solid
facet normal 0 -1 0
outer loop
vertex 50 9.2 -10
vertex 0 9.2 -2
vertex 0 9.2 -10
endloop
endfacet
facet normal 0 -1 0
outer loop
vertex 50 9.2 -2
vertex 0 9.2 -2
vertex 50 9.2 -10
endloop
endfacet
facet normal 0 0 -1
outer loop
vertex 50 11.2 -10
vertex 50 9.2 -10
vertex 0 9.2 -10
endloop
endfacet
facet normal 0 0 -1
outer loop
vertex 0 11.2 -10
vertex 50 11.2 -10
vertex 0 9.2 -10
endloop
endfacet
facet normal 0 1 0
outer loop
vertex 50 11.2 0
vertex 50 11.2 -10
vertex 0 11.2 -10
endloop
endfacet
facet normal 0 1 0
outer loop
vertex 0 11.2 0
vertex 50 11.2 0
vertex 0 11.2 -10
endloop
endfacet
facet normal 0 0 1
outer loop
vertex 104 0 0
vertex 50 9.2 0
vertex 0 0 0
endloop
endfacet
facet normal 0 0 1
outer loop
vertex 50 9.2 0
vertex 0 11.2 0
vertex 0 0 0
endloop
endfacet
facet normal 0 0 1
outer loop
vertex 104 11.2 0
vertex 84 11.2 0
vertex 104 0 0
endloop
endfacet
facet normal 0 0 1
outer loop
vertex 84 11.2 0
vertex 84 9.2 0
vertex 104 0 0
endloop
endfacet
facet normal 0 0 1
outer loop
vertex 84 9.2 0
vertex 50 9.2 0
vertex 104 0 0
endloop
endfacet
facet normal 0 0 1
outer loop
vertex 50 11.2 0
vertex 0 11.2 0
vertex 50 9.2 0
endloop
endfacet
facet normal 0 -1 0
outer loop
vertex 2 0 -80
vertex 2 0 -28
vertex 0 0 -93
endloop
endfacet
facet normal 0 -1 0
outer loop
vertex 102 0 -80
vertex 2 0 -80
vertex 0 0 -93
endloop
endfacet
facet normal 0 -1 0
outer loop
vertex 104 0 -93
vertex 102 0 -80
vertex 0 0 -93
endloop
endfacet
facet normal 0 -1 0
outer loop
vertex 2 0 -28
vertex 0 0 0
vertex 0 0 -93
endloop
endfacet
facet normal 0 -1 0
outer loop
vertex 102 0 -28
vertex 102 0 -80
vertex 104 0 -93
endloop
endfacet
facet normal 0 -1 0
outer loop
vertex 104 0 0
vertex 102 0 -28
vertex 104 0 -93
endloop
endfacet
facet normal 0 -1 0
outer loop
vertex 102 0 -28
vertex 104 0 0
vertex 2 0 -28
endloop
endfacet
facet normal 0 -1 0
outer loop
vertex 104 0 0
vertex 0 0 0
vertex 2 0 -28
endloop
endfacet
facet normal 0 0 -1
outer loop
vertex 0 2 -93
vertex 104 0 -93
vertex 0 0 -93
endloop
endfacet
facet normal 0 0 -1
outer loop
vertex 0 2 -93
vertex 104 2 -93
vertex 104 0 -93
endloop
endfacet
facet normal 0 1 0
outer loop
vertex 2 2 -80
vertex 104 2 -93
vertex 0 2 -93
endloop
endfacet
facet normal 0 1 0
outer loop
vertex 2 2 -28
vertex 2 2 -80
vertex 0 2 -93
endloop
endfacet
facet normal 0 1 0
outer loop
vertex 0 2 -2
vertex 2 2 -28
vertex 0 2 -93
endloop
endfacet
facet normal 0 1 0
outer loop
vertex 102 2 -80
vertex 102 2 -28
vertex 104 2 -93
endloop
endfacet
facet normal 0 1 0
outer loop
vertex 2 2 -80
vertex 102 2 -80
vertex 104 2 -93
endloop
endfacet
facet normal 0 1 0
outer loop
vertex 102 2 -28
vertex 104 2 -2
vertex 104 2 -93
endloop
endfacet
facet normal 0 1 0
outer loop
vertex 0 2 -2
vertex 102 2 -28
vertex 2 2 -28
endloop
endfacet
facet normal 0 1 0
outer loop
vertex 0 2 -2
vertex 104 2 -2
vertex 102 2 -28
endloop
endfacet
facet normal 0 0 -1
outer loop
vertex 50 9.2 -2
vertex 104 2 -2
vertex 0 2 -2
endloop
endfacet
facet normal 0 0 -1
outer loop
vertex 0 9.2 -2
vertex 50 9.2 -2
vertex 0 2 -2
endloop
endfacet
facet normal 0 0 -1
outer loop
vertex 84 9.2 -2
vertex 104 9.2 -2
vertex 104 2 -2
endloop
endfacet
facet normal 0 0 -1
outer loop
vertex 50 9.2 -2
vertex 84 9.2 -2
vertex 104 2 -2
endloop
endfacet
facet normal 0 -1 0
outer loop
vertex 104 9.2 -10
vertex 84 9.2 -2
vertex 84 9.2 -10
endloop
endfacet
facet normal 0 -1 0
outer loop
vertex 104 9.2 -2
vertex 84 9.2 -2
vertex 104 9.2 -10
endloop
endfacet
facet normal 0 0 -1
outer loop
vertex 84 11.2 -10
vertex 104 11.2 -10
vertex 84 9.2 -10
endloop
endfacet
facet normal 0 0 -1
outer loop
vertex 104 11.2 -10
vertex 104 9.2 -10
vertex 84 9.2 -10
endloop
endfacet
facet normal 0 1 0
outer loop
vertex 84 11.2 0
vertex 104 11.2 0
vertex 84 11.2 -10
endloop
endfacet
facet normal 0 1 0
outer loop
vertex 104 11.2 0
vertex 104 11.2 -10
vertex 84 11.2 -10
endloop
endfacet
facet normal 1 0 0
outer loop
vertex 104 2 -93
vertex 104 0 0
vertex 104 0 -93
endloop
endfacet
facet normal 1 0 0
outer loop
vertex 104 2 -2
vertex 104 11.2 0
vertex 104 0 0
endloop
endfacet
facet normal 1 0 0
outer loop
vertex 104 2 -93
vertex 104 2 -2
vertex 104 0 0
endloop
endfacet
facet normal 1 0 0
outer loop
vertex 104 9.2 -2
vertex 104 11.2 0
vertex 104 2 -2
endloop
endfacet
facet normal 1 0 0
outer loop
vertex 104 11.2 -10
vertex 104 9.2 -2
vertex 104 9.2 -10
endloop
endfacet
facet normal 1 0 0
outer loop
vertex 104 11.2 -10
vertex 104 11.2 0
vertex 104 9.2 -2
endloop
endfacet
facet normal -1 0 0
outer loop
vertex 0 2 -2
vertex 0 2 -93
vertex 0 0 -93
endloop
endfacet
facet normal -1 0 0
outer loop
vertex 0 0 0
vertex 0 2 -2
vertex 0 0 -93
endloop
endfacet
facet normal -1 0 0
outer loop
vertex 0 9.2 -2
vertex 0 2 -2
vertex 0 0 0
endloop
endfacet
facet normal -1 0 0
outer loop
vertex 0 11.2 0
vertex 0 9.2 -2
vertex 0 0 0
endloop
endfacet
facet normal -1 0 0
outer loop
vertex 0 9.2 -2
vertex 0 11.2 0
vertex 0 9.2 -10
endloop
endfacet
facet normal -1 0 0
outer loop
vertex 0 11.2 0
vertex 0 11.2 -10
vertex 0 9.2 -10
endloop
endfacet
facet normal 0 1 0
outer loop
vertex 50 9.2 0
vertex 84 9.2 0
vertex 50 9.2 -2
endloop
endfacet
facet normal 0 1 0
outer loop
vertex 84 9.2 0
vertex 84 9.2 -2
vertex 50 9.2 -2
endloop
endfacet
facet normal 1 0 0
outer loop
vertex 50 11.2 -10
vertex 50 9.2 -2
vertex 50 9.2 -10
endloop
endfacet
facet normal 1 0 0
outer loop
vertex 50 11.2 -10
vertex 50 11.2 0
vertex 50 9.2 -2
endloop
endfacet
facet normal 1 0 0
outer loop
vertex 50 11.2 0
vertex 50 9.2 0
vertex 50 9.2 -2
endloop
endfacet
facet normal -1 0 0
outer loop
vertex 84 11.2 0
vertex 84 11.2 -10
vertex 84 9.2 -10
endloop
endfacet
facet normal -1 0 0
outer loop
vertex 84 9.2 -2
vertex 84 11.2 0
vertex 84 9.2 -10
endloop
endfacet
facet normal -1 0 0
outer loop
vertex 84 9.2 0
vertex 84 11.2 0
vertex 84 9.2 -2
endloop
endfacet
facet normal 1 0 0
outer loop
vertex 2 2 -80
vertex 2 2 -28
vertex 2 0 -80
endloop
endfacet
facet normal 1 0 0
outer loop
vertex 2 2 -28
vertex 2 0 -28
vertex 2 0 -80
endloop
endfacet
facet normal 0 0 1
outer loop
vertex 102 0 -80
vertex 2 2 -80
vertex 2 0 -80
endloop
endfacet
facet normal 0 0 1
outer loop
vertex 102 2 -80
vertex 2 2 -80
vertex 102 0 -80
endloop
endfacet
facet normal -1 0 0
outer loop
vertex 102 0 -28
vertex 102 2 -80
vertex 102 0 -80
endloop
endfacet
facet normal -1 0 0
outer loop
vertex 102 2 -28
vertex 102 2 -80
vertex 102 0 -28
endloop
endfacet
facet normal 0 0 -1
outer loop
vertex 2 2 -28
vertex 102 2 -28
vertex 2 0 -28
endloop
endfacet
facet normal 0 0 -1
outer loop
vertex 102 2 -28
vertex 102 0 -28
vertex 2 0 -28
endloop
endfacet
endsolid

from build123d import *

# Parameters (mm, degrees)
BOSS_EXTRUDE1_DEPTH = 104
SKETCH2_W           = 34
SKETCH2_H           = 10
CUT_EXTRUDE1_DEPTH  = 2
CUT_EXTRUDE2_REACH  = 141.82
SKETCH3_W           = 100
SKETCH3_H           = 52


with BuildPart() as part:
    # Sketch1 → Boss-Extrude1 (new body)
    with BuildSketch(Plane(origin=(0, 0, 0), x_dir=(0, 0, -1), z_dir=(1, 0, 0))):
        Polygon((0, 0), (93, 0), (93, 2), (2, 2), (2, 9.2), (10, 9.2), (10, 11.2), (0, 11.2), align=None)
    extrude(amount=BOSS_EXTRUDE1_DEPTH)

    # Sketch2 → Cut-Extrude1 (cut)
    with BuildSketch(Plane(origin=(0, 11.2, 0), x_dir=(1, 0, 0), z_dir=(0, 1, 0))):
        with Locations((67, 5)):
            Rectangle(SKETCH2_W, SKETCH2_H)
    extrude(amount=-CUT_EXTRUDE1_DEPTH, mode=Mode.SUBTRACT)

    # Sketch3 → Cut-Extrude2 (cut, up to next)
    with BuildSketch(Plane(origin=(0, 2, 0), x_dir=(1, 0, 0), z_dir=(0, 1, 0)), mode=Mode.PRIVATE) as cut_extrude2_sk1:
        with Locations((52, 54)):
            Rectangle(SKETCH3_W, SKETCH3_H)
    cut_extrude2_tool1 = extrude(cut_extrude2_sk1.sketch, amount=-CUT_EXTRUDE2_REACH, mode=Mode.PRIVATE) & part.part
    add(cut_extrude2_tool1.solids().sort_by_distance((52, 2, -54))[0], mode=Mode.SUBTRACT)


solid = part.part
